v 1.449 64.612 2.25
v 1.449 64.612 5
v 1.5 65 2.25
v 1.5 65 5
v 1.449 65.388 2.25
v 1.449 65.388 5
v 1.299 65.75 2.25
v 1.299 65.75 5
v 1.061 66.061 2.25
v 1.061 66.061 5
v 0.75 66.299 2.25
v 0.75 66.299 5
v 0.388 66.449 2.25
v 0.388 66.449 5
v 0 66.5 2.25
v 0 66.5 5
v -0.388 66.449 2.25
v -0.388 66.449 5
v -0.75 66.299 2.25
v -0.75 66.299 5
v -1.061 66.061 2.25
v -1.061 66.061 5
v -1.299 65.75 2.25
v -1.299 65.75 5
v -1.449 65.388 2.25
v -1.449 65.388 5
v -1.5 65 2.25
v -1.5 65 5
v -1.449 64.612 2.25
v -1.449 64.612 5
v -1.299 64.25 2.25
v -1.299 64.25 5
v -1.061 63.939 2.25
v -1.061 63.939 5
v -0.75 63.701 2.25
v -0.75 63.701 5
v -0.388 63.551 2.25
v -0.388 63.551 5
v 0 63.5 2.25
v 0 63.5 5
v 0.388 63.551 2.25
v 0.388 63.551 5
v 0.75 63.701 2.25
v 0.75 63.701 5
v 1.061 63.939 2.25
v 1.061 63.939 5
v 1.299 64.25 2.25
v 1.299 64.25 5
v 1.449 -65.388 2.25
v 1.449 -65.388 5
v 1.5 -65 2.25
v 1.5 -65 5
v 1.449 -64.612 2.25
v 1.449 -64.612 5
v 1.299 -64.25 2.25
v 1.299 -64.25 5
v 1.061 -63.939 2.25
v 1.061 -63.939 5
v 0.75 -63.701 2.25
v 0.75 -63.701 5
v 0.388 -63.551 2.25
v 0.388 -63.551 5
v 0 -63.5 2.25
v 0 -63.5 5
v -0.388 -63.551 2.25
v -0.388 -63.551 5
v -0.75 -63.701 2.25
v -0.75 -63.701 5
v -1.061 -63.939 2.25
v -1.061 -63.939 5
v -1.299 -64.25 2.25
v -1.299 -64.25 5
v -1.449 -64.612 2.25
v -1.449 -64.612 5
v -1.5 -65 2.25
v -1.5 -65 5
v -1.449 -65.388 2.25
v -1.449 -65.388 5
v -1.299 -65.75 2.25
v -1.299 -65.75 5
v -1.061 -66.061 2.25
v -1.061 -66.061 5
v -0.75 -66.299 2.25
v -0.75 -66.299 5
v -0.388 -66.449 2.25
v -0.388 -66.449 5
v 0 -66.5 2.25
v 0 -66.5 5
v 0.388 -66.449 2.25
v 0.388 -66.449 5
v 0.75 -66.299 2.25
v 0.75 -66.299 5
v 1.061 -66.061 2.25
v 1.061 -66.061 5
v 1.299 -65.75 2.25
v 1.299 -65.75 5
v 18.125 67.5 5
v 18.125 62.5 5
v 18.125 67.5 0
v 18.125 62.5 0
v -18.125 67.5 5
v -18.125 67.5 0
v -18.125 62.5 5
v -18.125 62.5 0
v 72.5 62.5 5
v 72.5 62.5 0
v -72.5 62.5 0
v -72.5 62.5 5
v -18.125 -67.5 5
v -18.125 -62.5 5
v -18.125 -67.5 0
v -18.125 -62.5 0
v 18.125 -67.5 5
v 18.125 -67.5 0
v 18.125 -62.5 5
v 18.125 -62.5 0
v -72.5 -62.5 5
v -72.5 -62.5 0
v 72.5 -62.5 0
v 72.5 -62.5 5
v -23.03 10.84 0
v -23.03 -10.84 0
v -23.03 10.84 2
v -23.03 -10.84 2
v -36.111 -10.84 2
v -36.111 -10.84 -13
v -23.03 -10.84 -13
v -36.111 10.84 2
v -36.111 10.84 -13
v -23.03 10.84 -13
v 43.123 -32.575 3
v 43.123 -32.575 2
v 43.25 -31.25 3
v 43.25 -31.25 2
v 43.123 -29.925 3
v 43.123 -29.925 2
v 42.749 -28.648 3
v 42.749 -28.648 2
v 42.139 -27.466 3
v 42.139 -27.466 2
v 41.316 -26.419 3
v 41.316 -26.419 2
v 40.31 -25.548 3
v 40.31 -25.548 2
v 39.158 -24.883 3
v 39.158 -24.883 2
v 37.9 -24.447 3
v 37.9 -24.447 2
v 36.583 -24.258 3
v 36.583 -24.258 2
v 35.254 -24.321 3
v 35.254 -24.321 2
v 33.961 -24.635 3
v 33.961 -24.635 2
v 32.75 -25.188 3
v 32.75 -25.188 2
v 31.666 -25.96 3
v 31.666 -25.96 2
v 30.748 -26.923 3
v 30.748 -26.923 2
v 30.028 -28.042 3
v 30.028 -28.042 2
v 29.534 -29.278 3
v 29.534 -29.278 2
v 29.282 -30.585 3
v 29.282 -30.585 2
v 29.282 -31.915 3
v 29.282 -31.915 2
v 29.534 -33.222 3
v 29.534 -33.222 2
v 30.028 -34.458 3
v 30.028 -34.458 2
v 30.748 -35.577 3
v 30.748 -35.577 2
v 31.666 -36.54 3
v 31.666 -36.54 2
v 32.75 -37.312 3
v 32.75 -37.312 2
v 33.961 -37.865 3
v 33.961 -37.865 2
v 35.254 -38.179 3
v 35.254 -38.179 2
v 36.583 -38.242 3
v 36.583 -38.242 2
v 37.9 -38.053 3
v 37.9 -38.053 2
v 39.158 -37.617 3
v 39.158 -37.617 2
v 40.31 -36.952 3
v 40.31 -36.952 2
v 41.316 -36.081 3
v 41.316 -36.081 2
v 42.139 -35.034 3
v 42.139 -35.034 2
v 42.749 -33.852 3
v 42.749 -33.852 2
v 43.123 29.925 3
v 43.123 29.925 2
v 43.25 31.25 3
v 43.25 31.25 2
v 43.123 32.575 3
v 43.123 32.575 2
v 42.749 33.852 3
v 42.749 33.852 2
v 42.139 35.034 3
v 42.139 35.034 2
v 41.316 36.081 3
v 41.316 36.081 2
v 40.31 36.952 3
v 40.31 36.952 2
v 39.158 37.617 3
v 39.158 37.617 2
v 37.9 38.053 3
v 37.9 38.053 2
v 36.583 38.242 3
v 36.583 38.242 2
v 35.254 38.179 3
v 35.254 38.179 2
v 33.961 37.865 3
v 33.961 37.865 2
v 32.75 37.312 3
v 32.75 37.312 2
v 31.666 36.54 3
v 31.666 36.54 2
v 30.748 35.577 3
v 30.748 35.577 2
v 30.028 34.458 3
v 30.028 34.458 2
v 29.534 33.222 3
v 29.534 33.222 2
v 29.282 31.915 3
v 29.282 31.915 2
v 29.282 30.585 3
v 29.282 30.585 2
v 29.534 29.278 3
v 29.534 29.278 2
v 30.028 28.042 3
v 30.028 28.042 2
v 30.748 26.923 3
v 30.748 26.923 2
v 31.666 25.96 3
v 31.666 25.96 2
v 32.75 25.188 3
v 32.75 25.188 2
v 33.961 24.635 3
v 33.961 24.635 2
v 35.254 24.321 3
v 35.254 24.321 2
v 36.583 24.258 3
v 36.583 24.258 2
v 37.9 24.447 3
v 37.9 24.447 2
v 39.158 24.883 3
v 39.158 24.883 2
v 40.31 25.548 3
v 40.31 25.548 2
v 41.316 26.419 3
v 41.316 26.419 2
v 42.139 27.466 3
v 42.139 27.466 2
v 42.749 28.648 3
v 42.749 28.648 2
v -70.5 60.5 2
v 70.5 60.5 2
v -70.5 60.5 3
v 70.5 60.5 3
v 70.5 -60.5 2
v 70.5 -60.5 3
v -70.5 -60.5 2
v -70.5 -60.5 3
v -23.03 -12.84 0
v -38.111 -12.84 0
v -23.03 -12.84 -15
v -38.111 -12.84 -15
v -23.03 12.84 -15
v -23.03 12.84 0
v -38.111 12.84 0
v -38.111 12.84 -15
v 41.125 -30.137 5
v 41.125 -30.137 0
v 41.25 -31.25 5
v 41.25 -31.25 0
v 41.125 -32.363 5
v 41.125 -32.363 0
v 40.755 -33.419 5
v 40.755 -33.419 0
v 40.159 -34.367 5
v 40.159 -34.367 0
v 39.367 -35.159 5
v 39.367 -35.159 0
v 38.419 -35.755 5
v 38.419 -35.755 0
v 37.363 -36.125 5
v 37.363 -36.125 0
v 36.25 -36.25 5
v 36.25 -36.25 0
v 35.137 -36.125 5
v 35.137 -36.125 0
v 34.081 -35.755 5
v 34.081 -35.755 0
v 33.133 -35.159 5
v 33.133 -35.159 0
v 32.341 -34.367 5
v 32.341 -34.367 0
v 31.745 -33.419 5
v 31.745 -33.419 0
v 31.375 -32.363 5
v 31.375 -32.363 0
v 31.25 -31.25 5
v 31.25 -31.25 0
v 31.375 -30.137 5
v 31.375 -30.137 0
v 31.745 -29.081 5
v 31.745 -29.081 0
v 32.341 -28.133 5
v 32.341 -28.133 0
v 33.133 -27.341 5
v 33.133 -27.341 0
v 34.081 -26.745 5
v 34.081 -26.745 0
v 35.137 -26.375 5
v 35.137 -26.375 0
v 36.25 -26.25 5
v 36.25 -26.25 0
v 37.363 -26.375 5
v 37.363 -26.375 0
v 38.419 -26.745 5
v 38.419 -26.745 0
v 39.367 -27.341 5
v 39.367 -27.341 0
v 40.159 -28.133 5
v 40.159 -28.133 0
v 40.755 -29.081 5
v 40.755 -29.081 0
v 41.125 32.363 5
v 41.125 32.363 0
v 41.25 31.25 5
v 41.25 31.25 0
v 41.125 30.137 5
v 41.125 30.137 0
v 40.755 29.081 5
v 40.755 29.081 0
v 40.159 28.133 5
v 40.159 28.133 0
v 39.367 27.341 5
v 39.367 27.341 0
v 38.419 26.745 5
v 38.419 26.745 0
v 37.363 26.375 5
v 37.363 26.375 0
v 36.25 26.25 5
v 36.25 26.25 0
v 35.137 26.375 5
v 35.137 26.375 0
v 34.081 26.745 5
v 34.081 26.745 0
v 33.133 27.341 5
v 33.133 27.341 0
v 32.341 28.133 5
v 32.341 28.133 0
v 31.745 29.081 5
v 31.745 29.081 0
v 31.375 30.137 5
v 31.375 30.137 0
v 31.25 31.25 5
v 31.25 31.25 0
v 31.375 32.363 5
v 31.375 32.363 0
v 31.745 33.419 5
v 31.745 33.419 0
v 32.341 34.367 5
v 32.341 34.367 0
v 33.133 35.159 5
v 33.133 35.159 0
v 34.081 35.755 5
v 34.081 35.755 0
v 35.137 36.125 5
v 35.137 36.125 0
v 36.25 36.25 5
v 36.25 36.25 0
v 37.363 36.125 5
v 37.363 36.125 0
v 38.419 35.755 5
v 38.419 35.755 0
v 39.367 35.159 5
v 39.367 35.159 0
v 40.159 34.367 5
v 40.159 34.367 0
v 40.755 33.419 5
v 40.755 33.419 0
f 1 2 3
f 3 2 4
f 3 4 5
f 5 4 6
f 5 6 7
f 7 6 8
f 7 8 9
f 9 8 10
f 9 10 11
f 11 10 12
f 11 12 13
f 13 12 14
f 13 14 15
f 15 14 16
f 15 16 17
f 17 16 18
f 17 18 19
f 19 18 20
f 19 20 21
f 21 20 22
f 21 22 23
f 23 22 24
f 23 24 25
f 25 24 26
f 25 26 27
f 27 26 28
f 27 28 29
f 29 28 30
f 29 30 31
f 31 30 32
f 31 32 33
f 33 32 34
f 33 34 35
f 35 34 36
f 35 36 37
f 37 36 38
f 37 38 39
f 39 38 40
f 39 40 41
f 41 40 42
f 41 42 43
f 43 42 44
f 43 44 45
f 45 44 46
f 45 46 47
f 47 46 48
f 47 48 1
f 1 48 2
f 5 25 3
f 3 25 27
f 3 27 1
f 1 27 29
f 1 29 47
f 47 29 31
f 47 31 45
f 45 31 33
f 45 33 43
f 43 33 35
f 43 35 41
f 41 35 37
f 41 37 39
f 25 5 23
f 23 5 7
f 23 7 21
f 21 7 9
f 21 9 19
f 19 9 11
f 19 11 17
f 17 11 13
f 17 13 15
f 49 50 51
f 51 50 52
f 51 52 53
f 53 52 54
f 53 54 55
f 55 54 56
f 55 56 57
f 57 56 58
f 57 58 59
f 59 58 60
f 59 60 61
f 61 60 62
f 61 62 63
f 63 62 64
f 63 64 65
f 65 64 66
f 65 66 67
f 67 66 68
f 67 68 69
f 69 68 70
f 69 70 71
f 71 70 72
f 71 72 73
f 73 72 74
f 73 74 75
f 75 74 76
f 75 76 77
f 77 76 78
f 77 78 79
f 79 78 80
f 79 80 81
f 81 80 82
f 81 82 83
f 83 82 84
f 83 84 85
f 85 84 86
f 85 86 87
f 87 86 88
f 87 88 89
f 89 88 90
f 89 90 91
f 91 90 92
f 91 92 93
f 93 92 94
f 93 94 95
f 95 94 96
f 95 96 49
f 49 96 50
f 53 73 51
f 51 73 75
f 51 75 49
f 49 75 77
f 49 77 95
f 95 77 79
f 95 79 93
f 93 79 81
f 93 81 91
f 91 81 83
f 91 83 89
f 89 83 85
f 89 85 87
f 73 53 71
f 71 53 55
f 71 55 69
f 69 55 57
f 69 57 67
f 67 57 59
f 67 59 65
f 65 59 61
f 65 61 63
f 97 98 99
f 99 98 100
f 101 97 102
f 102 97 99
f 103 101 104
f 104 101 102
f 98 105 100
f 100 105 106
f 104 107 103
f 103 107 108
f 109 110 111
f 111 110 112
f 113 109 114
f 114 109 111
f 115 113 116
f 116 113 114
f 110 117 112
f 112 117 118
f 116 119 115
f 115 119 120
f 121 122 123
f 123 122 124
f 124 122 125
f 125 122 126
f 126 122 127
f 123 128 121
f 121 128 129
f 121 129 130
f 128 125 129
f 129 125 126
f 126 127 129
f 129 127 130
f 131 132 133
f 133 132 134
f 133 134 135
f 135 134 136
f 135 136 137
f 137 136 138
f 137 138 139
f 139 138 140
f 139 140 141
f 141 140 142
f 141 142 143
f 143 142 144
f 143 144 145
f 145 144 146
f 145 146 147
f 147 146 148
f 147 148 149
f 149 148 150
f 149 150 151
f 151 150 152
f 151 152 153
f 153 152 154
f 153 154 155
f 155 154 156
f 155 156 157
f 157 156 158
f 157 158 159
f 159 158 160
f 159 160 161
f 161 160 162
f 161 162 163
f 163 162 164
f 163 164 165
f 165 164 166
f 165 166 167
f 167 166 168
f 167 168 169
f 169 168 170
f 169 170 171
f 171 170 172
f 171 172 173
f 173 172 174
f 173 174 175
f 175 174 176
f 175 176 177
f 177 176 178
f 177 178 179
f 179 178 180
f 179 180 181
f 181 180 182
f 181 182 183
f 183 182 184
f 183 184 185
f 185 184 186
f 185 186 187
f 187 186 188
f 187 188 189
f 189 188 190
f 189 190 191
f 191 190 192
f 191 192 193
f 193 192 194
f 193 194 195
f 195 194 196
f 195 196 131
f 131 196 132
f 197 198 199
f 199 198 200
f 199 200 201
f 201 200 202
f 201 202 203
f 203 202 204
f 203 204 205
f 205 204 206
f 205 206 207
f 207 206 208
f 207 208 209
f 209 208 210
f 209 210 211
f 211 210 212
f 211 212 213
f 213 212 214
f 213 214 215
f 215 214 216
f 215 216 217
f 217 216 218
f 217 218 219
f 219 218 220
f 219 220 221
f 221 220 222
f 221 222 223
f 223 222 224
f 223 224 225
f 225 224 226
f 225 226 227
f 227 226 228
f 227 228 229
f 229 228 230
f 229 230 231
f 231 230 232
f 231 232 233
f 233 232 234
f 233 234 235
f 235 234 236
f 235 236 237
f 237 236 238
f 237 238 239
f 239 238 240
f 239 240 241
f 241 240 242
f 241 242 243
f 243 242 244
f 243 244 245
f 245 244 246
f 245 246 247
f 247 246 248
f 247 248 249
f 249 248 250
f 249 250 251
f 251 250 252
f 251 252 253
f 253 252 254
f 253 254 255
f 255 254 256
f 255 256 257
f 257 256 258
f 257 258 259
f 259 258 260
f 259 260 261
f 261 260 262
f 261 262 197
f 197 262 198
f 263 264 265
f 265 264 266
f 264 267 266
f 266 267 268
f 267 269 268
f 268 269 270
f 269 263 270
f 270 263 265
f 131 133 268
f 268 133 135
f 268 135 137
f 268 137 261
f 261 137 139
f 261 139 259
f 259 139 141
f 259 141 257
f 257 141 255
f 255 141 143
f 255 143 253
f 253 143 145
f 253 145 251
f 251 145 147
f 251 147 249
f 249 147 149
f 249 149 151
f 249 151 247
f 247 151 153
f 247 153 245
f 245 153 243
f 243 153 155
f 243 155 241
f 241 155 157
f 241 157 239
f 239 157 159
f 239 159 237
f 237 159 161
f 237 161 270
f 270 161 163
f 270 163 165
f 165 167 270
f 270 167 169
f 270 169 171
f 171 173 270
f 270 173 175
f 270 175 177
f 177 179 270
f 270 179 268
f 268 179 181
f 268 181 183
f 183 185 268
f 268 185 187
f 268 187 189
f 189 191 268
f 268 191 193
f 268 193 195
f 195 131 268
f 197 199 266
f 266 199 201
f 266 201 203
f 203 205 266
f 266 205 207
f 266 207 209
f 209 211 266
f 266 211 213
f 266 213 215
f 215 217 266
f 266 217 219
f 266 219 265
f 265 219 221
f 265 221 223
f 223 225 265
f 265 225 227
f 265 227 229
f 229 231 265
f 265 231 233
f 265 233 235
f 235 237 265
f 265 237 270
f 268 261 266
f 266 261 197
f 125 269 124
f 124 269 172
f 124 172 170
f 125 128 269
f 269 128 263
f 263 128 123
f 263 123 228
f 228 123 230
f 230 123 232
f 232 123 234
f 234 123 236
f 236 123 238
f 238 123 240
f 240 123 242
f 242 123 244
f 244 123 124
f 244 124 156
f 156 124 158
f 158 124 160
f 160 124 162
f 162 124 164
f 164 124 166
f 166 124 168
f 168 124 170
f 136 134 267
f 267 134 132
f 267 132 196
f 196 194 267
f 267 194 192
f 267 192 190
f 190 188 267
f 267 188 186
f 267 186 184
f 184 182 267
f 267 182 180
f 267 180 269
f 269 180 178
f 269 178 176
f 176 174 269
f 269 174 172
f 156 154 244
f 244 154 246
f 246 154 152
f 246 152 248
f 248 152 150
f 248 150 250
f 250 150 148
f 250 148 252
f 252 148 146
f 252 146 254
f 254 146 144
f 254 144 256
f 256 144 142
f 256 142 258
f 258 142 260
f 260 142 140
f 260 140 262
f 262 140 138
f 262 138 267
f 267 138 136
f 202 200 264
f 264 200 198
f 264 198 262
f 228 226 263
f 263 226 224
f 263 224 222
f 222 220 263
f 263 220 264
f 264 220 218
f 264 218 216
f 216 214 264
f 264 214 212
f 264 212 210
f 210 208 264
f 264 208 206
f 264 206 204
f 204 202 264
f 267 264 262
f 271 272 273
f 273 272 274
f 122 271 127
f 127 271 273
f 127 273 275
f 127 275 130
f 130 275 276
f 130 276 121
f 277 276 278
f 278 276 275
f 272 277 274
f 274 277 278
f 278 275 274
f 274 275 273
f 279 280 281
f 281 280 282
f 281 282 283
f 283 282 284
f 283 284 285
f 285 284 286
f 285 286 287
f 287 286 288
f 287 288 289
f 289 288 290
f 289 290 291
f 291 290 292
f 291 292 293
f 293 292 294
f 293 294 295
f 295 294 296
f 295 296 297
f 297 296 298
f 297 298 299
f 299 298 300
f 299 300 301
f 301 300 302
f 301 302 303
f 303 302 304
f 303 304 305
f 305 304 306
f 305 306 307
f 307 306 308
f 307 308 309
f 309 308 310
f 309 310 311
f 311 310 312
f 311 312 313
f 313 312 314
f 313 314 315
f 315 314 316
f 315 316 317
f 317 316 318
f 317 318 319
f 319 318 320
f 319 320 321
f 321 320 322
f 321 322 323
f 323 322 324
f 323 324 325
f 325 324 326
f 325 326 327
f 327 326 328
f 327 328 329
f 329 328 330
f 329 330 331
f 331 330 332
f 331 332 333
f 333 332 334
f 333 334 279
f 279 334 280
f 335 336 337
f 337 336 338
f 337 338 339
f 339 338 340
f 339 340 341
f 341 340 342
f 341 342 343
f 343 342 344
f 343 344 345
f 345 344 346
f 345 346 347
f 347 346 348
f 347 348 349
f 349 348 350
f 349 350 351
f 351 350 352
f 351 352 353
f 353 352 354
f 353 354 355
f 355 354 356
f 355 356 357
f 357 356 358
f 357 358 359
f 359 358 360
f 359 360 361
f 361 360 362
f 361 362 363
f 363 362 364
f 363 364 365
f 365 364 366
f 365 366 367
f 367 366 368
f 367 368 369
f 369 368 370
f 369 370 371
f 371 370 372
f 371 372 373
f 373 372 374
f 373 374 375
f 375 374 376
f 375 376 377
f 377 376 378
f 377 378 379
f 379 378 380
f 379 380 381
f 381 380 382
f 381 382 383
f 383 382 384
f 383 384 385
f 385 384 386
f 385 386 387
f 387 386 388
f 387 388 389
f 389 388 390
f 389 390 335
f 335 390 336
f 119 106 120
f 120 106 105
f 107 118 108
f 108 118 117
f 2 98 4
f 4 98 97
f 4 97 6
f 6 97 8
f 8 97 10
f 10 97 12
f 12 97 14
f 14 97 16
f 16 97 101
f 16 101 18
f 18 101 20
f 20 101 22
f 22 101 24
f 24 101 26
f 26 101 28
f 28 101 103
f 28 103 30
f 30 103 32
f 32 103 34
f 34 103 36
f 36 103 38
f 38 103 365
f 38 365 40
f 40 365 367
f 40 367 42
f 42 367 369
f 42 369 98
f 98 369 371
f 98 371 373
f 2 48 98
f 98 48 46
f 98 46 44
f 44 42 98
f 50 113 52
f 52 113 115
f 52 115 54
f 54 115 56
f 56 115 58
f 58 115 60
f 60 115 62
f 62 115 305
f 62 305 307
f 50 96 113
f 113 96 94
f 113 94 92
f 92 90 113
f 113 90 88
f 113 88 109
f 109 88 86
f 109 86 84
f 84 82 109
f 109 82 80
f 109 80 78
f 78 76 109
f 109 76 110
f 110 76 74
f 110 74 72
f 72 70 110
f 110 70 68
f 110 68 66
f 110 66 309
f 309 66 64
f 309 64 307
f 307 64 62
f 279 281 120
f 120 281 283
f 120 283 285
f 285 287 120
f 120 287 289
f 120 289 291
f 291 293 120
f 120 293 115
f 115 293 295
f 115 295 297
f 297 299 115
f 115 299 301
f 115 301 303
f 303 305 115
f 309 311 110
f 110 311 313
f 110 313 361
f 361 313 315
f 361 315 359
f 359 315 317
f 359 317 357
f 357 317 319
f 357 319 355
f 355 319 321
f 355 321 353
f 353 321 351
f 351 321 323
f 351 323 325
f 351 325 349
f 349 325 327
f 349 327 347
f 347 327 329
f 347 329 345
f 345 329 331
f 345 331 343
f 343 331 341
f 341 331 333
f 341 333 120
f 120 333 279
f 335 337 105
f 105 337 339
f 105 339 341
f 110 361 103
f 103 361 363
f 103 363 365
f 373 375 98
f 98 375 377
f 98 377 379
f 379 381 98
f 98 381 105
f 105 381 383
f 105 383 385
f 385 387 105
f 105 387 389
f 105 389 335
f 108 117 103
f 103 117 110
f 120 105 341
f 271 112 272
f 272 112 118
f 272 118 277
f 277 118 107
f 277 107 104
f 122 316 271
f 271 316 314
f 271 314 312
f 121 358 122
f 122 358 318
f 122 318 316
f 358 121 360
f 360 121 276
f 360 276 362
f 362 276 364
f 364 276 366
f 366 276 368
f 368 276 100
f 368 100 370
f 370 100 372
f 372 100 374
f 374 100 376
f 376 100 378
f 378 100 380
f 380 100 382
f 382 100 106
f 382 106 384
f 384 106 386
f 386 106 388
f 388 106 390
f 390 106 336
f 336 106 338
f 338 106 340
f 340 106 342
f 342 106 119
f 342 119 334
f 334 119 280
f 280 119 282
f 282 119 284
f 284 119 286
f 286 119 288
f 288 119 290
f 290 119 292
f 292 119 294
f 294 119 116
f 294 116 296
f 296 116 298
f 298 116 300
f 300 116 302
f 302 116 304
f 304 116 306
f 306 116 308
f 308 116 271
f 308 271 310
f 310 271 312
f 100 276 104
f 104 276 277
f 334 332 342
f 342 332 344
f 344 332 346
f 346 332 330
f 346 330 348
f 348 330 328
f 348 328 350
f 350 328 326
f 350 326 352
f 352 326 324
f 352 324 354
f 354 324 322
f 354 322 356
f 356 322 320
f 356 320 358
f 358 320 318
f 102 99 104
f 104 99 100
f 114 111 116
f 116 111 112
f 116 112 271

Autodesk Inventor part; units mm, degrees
ref_plane "YZ Plane" through (0, 0, 0) normal (1, 0, 0) x (0, 1, 0)
ref_plane "XZ Plane" through (0, 0, 0) normal (0, 1, 0) x (-1, 0, 0)
ref_plane "XY Plane" through (0, 0, 0) normal (0, 0, 1) x (1, 0, 0)
sketch "Sketch1" plane through (0, 0, 0) normal (0, 0, 1) x (1, 0, 0)
  line L0 (72.5, 62.5) -> (-72.5, 62.5)
  line L1 (-72.5, 62.5) -> (-72.5, -62.5)
  line L2 (-72.5, -62.5) -> (72.5, -62.5)
  line L3 (72.5, -62.5) -> (72.5, 62.5)
  line L4 (72.5, 62.5) -> (-72.5, -62.5) construction
  line L5 (-72.5, 62.5) -> (72.5, -62.5) construction
  point P0 (0, 0)
  dimension "d0" = 145
  dimension "d1" = 125
extrude "Extrusion1" add sketch "Sketch1" along normal blind 5
sketch "Sketch2" plane through (0, 0, 0) normal (0, 0, -1) x (-1, 0, 0)
  line L0 (-72.5, -62.5) -> (-72.5, 62.5) projected
  line L1 (-72.5, 62.5) -> (0, 0)
  line L2 (0, 0) -> (-72.5, -62.5)
  circle A0 centre (-36.25, 31.25) radius 5
  circle A1 centre (-36.25, -31.25) radius 5
  dimension "d4" = 10
  dimension "d5" = 10
extrude "Extrusion2" cut sketch "Sketch2" against normal blind 18.5 contours A1 L2 | L2 A1 | A0 L1 | L1 A0
sketch "Sketch3" plane through (0, 0, 0) normal (0, 0, -1) x (-1, 0, 0)
  line L0 (23.0298, -12.8396) -> (38.1112, -12.8396)
  line L1 (38.1112, -12.8396) -> (38.1112, 12.8396)
  line L2 (38.1112, 12.8396) -> (23.0298, 12.8396)
  line L3 (23.0298, 12.8396) -> (23.0298, -12.8396)
  line L4 (23.0298, -12.8396) -> (38.1112, 12.8396) construction
  line L5 (38.1112, -12.8396) -> (23.0298, 12.8396) construction
  point P0 (0, 0)
  point P1 (30.5705, 0)
extrude "Extrusion3" add sketch "Sketch3" along normal blind 15
shell "Shell1" thickness 2 removed faces 1 at (-23.0298, 4.2799, -5)
sketch "Sketch4" plane through (0, 0, 5) normal (0, 0, 1) x (1, 0, 0)
  line L0 (-72.5, -62.5) -> (72.5, -62.5) projected
  line L1 (0, 0) -> (-72.5, -62.5)
  line L2 (-36.25, -31.25) -> (0, -62.5)
  line L3 (-36.25, -31.25) -> (-36.25, -62.5)
  line L4 (-18.125, -46.875) -> (-18.125, -62.5)
  line L5 (0, 0) -> (72.5, -62.5)
  circle A0 centre (36.25, -31.25) radius 5 projected
  line L6 (36.25, -31.25) -> (0, -62.5)
  line L7 (18.125, -46.875) -> (18.125, -62.5)
  line L8 (-18.125, -62.5) -> (18.125, -62.5)
  line L9 (18.125, -62.5) -> (18.125, -67.5)
  line L10 (18.125, -67.5) -> (-18.125, -67.5)
  line L11 (-18.125, -67.5) -> (-18.125, -62.5)
  dimension "d11" = 5
extrude "Extrusion4" add sketch "Sketch4" against normal blind 5 contours L0 L9 L10 L11
sketch "Sketch5" plane through (0, 0, 5) normal (0, 0, 1) x (1, 0, 0)
  line L0 (72.5, -62.5) -> (72.5, 62.5) projected
  line L1 (0, 0) -> (72.5, 62.5)
  line L2 (-72.5, 62.5) -> (-72.5, -62.5) projected
  line L3 (0, 0) -> (-72.5, 62.5)
  circle A0 centre (36.25, 31.25) radius 5 projected
  line L4 (36.25, 31.25) -> (36.25, 62.5)
  line L5 (72.5, 62.5) -> (-72.5, 62.5) projected
  line L6 (-36.25, 31.25) -> (-36.25, 62.5)
  line L7 (-18.125, 15.625) -> (-18.125, 62.5)
  line L8 (36.25, 31.25) -> (0, 31.25)
  line L9 (18.125, 31.25) -> (18.125, 62.5)
  line L10 (18.125, 62.5) -> (-18.125, 62.5)
  line L11 (-18.125, 62.5) -> (-18.125, 67.5)
  line L12 (-18.125, 67.5) -> (18.125, 67.5)
  line L13 (18.125, 67.5) -> (18.125, 62.5)
  dimension "d14" = 5
extrude "Extrusion5" add sketch "Sketch5" against normal blind 5 contours L11 L12 L13 L5
sketch "Sketch6" plane through (0, 0, 5) normal (0, 0, 1) x (1, 0, 0)
  line L0 (-18.125, -62.5) -> (-18.125, -67.5) projected
  line L1 (18.125, -67.5) -> (18.125, -62.5) projected
  line L2 (-18.125, -62.5) -> (18.125, -62.5)
  circle A0 centre (0, -65) radius 1.5
  point P0 (0, 0)
  dimension "d17" = 3
extrude "Extrusion6" cut sketch "Sketch6" against normal blind 2.75
sketch "Sketch7" plane through (0, 0, 5) normal (0, 0, 1) x (1, 0, 0)
  line L0 (-18.125, 62.5) -> (-72.5, 62.5) projected
  line L1 (18.125, 62.5) -> (18.125, 67.5) projected
  line L2 (-18.125, 62.5) -> (18.125, 62.5)
  circle A0 centre (0, 65) radius 1.5
  point P0 (0, 0)
  dimension "d20" = 3
extrude "Extrusion7" cut sketch "Sketch7" against normal blind 2.75
properties part number "broomba base"
